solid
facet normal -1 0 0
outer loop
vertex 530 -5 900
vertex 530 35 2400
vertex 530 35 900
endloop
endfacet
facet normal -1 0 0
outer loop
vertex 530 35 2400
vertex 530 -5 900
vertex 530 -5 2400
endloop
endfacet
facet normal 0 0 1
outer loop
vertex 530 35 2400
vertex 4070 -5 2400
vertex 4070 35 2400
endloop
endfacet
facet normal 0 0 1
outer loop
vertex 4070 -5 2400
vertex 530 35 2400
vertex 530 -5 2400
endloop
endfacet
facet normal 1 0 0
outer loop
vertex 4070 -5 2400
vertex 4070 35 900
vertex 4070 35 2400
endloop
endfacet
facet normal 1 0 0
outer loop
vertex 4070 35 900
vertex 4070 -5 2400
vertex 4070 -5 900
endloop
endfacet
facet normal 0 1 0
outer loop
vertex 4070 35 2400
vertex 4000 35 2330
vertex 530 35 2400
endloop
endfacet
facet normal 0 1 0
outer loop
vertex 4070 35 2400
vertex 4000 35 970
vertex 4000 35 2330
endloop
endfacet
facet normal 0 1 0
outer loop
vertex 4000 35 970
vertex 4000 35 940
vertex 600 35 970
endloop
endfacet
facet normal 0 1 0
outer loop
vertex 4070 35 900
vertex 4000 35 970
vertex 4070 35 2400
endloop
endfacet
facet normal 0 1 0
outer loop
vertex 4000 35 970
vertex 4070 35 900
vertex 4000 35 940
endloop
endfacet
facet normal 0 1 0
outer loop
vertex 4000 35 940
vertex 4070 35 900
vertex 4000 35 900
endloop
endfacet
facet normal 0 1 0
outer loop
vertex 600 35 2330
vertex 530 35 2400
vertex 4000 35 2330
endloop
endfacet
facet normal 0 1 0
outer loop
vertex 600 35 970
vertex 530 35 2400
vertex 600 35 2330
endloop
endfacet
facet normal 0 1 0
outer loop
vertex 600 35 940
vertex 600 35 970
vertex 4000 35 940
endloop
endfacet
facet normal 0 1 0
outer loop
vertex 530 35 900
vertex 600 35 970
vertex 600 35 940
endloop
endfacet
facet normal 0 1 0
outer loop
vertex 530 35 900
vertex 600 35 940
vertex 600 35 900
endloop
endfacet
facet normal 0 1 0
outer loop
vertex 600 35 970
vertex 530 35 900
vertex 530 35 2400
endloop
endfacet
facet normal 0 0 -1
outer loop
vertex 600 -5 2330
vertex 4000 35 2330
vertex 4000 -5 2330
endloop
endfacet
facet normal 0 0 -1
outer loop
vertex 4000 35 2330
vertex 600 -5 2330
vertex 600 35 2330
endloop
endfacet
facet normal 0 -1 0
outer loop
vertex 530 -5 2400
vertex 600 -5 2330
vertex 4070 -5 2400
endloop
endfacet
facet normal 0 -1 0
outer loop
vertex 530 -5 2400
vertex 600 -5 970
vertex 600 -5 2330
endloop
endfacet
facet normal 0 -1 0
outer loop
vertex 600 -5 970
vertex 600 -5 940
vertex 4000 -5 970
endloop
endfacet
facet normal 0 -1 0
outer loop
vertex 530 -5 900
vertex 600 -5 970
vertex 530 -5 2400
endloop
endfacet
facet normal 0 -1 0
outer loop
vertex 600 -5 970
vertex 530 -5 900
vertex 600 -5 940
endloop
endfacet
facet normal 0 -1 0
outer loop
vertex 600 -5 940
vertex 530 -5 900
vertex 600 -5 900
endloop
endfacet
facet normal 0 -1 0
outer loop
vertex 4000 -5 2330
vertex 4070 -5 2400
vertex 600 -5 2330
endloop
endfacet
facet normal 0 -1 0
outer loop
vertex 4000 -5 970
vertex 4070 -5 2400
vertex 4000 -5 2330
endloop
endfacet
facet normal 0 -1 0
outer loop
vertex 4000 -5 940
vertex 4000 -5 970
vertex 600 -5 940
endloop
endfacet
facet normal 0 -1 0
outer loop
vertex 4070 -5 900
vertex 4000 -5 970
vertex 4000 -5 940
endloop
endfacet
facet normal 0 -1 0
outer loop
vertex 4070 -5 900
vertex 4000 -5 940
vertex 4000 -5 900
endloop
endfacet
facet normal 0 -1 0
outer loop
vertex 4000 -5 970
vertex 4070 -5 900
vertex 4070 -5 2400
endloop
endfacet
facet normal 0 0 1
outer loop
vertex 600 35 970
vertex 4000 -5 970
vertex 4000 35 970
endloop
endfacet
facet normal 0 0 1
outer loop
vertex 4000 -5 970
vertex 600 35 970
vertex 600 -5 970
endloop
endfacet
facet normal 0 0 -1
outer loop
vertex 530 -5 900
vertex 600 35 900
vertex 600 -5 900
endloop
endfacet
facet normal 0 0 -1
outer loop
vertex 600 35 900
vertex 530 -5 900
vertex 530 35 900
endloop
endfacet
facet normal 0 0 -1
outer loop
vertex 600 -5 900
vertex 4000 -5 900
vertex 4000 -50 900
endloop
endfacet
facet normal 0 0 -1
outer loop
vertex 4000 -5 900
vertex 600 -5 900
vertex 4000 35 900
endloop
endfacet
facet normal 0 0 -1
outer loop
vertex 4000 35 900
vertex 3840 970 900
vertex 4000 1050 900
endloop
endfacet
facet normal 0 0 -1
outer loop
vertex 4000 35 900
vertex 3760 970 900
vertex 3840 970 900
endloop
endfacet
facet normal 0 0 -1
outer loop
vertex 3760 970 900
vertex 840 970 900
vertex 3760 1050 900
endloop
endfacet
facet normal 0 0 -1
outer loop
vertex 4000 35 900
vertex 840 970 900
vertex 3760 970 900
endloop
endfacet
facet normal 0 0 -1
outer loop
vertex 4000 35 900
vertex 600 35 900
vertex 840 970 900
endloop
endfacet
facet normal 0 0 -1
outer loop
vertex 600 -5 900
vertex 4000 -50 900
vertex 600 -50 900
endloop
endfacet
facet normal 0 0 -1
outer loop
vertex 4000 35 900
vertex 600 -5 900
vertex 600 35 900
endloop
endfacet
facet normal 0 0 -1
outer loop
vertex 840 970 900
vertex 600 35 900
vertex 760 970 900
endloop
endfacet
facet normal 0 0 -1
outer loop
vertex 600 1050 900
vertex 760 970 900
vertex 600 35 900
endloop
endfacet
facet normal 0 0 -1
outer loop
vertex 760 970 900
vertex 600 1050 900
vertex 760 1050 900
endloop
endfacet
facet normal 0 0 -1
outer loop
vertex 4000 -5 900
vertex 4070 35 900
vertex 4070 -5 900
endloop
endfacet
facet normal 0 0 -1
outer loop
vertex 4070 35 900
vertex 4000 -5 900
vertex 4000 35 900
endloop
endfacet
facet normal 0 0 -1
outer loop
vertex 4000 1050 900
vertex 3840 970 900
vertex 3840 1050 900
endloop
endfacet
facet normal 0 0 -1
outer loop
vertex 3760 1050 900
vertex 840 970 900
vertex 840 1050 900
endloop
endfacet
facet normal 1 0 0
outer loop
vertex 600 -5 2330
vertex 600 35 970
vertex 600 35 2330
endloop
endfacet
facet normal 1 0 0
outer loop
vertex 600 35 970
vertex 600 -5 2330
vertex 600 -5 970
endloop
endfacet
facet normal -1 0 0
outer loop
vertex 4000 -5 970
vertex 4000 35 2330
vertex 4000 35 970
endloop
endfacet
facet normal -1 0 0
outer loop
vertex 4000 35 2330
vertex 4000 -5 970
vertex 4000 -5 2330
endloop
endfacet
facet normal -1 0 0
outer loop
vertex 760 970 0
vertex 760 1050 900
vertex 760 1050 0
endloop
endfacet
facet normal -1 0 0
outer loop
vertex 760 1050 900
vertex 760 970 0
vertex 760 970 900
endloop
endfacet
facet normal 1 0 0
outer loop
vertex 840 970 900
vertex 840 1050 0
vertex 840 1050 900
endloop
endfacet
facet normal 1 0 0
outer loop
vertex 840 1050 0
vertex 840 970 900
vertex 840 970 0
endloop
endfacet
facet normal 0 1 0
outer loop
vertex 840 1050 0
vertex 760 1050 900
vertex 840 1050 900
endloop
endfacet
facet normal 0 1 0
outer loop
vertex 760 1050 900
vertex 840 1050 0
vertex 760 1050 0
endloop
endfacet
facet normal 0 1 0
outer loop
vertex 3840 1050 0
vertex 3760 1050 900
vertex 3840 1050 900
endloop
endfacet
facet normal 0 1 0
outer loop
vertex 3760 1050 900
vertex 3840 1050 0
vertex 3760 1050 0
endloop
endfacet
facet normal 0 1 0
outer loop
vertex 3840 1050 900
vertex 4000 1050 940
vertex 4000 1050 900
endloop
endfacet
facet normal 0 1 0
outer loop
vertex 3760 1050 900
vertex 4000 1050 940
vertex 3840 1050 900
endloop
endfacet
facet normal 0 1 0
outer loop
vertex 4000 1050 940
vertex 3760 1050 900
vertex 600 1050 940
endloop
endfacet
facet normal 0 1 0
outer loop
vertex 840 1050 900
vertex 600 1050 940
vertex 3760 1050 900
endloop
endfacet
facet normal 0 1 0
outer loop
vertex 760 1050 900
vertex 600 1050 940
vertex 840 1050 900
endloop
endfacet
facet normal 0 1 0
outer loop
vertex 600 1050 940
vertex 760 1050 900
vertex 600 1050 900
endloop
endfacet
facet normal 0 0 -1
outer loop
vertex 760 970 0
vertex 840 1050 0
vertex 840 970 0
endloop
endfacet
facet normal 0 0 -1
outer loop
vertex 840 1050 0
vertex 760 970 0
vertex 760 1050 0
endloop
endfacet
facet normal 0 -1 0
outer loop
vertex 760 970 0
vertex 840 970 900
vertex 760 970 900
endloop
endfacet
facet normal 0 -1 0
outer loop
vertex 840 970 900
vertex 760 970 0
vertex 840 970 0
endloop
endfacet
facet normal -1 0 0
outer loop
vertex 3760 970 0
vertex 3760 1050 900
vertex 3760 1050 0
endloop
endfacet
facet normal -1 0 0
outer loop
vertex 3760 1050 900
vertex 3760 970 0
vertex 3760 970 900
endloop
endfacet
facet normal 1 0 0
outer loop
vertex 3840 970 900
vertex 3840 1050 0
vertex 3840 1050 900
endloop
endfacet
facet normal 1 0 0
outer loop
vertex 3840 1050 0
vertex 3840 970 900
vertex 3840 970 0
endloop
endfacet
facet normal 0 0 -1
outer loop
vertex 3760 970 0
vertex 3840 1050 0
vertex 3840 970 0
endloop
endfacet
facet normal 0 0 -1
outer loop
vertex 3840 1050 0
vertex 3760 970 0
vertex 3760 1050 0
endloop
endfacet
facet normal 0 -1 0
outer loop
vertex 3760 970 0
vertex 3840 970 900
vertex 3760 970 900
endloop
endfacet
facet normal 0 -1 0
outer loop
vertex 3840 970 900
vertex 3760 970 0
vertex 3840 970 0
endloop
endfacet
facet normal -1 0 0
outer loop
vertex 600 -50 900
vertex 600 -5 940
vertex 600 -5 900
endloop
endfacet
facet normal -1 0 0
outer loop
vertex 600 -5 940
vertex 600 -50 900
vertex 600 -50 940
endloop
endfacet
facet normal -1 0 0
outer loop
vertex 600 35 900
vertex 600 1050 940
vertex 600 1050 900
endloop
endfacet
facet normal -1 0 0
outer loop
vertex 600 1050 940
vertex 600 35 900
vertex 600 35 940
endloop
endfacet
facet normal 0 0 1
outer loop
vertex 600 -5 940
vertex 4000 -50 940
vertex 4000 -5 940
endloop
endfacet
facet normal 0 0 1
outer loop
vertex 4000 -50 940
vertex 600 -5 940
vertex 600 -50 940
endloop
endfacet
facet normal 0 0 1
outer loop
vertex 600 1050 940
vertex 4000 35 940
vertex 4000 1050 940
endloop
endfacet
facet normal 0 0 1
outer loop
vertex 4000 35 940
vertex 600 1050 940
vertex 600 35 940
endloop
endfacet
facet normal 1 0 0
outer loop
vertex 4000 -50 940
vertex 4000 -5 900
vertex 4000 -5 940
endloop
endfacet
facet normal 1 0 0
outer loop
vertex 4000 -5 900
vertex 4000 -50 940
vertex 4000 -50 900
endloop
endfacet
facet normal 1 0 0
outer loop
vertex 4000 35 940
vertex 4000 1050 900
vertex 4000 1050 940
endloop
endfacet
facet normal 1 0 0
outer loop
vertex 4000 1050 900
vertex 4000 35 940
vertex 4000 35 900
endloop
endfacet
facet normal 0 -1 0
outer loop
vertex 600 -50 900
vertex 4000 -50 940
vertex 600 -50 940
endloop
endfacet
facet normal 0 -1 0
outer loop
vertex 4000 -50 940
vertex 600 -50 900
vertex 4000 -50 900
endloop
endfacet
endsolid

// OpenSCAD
// part_counter_ledge.scad — Export the counter slab as standalone OBJ.
// Press F6 (render), then File -> Export as OBJ.
include <tea_shop_counter_modules.scad>;
counter_ledge();
